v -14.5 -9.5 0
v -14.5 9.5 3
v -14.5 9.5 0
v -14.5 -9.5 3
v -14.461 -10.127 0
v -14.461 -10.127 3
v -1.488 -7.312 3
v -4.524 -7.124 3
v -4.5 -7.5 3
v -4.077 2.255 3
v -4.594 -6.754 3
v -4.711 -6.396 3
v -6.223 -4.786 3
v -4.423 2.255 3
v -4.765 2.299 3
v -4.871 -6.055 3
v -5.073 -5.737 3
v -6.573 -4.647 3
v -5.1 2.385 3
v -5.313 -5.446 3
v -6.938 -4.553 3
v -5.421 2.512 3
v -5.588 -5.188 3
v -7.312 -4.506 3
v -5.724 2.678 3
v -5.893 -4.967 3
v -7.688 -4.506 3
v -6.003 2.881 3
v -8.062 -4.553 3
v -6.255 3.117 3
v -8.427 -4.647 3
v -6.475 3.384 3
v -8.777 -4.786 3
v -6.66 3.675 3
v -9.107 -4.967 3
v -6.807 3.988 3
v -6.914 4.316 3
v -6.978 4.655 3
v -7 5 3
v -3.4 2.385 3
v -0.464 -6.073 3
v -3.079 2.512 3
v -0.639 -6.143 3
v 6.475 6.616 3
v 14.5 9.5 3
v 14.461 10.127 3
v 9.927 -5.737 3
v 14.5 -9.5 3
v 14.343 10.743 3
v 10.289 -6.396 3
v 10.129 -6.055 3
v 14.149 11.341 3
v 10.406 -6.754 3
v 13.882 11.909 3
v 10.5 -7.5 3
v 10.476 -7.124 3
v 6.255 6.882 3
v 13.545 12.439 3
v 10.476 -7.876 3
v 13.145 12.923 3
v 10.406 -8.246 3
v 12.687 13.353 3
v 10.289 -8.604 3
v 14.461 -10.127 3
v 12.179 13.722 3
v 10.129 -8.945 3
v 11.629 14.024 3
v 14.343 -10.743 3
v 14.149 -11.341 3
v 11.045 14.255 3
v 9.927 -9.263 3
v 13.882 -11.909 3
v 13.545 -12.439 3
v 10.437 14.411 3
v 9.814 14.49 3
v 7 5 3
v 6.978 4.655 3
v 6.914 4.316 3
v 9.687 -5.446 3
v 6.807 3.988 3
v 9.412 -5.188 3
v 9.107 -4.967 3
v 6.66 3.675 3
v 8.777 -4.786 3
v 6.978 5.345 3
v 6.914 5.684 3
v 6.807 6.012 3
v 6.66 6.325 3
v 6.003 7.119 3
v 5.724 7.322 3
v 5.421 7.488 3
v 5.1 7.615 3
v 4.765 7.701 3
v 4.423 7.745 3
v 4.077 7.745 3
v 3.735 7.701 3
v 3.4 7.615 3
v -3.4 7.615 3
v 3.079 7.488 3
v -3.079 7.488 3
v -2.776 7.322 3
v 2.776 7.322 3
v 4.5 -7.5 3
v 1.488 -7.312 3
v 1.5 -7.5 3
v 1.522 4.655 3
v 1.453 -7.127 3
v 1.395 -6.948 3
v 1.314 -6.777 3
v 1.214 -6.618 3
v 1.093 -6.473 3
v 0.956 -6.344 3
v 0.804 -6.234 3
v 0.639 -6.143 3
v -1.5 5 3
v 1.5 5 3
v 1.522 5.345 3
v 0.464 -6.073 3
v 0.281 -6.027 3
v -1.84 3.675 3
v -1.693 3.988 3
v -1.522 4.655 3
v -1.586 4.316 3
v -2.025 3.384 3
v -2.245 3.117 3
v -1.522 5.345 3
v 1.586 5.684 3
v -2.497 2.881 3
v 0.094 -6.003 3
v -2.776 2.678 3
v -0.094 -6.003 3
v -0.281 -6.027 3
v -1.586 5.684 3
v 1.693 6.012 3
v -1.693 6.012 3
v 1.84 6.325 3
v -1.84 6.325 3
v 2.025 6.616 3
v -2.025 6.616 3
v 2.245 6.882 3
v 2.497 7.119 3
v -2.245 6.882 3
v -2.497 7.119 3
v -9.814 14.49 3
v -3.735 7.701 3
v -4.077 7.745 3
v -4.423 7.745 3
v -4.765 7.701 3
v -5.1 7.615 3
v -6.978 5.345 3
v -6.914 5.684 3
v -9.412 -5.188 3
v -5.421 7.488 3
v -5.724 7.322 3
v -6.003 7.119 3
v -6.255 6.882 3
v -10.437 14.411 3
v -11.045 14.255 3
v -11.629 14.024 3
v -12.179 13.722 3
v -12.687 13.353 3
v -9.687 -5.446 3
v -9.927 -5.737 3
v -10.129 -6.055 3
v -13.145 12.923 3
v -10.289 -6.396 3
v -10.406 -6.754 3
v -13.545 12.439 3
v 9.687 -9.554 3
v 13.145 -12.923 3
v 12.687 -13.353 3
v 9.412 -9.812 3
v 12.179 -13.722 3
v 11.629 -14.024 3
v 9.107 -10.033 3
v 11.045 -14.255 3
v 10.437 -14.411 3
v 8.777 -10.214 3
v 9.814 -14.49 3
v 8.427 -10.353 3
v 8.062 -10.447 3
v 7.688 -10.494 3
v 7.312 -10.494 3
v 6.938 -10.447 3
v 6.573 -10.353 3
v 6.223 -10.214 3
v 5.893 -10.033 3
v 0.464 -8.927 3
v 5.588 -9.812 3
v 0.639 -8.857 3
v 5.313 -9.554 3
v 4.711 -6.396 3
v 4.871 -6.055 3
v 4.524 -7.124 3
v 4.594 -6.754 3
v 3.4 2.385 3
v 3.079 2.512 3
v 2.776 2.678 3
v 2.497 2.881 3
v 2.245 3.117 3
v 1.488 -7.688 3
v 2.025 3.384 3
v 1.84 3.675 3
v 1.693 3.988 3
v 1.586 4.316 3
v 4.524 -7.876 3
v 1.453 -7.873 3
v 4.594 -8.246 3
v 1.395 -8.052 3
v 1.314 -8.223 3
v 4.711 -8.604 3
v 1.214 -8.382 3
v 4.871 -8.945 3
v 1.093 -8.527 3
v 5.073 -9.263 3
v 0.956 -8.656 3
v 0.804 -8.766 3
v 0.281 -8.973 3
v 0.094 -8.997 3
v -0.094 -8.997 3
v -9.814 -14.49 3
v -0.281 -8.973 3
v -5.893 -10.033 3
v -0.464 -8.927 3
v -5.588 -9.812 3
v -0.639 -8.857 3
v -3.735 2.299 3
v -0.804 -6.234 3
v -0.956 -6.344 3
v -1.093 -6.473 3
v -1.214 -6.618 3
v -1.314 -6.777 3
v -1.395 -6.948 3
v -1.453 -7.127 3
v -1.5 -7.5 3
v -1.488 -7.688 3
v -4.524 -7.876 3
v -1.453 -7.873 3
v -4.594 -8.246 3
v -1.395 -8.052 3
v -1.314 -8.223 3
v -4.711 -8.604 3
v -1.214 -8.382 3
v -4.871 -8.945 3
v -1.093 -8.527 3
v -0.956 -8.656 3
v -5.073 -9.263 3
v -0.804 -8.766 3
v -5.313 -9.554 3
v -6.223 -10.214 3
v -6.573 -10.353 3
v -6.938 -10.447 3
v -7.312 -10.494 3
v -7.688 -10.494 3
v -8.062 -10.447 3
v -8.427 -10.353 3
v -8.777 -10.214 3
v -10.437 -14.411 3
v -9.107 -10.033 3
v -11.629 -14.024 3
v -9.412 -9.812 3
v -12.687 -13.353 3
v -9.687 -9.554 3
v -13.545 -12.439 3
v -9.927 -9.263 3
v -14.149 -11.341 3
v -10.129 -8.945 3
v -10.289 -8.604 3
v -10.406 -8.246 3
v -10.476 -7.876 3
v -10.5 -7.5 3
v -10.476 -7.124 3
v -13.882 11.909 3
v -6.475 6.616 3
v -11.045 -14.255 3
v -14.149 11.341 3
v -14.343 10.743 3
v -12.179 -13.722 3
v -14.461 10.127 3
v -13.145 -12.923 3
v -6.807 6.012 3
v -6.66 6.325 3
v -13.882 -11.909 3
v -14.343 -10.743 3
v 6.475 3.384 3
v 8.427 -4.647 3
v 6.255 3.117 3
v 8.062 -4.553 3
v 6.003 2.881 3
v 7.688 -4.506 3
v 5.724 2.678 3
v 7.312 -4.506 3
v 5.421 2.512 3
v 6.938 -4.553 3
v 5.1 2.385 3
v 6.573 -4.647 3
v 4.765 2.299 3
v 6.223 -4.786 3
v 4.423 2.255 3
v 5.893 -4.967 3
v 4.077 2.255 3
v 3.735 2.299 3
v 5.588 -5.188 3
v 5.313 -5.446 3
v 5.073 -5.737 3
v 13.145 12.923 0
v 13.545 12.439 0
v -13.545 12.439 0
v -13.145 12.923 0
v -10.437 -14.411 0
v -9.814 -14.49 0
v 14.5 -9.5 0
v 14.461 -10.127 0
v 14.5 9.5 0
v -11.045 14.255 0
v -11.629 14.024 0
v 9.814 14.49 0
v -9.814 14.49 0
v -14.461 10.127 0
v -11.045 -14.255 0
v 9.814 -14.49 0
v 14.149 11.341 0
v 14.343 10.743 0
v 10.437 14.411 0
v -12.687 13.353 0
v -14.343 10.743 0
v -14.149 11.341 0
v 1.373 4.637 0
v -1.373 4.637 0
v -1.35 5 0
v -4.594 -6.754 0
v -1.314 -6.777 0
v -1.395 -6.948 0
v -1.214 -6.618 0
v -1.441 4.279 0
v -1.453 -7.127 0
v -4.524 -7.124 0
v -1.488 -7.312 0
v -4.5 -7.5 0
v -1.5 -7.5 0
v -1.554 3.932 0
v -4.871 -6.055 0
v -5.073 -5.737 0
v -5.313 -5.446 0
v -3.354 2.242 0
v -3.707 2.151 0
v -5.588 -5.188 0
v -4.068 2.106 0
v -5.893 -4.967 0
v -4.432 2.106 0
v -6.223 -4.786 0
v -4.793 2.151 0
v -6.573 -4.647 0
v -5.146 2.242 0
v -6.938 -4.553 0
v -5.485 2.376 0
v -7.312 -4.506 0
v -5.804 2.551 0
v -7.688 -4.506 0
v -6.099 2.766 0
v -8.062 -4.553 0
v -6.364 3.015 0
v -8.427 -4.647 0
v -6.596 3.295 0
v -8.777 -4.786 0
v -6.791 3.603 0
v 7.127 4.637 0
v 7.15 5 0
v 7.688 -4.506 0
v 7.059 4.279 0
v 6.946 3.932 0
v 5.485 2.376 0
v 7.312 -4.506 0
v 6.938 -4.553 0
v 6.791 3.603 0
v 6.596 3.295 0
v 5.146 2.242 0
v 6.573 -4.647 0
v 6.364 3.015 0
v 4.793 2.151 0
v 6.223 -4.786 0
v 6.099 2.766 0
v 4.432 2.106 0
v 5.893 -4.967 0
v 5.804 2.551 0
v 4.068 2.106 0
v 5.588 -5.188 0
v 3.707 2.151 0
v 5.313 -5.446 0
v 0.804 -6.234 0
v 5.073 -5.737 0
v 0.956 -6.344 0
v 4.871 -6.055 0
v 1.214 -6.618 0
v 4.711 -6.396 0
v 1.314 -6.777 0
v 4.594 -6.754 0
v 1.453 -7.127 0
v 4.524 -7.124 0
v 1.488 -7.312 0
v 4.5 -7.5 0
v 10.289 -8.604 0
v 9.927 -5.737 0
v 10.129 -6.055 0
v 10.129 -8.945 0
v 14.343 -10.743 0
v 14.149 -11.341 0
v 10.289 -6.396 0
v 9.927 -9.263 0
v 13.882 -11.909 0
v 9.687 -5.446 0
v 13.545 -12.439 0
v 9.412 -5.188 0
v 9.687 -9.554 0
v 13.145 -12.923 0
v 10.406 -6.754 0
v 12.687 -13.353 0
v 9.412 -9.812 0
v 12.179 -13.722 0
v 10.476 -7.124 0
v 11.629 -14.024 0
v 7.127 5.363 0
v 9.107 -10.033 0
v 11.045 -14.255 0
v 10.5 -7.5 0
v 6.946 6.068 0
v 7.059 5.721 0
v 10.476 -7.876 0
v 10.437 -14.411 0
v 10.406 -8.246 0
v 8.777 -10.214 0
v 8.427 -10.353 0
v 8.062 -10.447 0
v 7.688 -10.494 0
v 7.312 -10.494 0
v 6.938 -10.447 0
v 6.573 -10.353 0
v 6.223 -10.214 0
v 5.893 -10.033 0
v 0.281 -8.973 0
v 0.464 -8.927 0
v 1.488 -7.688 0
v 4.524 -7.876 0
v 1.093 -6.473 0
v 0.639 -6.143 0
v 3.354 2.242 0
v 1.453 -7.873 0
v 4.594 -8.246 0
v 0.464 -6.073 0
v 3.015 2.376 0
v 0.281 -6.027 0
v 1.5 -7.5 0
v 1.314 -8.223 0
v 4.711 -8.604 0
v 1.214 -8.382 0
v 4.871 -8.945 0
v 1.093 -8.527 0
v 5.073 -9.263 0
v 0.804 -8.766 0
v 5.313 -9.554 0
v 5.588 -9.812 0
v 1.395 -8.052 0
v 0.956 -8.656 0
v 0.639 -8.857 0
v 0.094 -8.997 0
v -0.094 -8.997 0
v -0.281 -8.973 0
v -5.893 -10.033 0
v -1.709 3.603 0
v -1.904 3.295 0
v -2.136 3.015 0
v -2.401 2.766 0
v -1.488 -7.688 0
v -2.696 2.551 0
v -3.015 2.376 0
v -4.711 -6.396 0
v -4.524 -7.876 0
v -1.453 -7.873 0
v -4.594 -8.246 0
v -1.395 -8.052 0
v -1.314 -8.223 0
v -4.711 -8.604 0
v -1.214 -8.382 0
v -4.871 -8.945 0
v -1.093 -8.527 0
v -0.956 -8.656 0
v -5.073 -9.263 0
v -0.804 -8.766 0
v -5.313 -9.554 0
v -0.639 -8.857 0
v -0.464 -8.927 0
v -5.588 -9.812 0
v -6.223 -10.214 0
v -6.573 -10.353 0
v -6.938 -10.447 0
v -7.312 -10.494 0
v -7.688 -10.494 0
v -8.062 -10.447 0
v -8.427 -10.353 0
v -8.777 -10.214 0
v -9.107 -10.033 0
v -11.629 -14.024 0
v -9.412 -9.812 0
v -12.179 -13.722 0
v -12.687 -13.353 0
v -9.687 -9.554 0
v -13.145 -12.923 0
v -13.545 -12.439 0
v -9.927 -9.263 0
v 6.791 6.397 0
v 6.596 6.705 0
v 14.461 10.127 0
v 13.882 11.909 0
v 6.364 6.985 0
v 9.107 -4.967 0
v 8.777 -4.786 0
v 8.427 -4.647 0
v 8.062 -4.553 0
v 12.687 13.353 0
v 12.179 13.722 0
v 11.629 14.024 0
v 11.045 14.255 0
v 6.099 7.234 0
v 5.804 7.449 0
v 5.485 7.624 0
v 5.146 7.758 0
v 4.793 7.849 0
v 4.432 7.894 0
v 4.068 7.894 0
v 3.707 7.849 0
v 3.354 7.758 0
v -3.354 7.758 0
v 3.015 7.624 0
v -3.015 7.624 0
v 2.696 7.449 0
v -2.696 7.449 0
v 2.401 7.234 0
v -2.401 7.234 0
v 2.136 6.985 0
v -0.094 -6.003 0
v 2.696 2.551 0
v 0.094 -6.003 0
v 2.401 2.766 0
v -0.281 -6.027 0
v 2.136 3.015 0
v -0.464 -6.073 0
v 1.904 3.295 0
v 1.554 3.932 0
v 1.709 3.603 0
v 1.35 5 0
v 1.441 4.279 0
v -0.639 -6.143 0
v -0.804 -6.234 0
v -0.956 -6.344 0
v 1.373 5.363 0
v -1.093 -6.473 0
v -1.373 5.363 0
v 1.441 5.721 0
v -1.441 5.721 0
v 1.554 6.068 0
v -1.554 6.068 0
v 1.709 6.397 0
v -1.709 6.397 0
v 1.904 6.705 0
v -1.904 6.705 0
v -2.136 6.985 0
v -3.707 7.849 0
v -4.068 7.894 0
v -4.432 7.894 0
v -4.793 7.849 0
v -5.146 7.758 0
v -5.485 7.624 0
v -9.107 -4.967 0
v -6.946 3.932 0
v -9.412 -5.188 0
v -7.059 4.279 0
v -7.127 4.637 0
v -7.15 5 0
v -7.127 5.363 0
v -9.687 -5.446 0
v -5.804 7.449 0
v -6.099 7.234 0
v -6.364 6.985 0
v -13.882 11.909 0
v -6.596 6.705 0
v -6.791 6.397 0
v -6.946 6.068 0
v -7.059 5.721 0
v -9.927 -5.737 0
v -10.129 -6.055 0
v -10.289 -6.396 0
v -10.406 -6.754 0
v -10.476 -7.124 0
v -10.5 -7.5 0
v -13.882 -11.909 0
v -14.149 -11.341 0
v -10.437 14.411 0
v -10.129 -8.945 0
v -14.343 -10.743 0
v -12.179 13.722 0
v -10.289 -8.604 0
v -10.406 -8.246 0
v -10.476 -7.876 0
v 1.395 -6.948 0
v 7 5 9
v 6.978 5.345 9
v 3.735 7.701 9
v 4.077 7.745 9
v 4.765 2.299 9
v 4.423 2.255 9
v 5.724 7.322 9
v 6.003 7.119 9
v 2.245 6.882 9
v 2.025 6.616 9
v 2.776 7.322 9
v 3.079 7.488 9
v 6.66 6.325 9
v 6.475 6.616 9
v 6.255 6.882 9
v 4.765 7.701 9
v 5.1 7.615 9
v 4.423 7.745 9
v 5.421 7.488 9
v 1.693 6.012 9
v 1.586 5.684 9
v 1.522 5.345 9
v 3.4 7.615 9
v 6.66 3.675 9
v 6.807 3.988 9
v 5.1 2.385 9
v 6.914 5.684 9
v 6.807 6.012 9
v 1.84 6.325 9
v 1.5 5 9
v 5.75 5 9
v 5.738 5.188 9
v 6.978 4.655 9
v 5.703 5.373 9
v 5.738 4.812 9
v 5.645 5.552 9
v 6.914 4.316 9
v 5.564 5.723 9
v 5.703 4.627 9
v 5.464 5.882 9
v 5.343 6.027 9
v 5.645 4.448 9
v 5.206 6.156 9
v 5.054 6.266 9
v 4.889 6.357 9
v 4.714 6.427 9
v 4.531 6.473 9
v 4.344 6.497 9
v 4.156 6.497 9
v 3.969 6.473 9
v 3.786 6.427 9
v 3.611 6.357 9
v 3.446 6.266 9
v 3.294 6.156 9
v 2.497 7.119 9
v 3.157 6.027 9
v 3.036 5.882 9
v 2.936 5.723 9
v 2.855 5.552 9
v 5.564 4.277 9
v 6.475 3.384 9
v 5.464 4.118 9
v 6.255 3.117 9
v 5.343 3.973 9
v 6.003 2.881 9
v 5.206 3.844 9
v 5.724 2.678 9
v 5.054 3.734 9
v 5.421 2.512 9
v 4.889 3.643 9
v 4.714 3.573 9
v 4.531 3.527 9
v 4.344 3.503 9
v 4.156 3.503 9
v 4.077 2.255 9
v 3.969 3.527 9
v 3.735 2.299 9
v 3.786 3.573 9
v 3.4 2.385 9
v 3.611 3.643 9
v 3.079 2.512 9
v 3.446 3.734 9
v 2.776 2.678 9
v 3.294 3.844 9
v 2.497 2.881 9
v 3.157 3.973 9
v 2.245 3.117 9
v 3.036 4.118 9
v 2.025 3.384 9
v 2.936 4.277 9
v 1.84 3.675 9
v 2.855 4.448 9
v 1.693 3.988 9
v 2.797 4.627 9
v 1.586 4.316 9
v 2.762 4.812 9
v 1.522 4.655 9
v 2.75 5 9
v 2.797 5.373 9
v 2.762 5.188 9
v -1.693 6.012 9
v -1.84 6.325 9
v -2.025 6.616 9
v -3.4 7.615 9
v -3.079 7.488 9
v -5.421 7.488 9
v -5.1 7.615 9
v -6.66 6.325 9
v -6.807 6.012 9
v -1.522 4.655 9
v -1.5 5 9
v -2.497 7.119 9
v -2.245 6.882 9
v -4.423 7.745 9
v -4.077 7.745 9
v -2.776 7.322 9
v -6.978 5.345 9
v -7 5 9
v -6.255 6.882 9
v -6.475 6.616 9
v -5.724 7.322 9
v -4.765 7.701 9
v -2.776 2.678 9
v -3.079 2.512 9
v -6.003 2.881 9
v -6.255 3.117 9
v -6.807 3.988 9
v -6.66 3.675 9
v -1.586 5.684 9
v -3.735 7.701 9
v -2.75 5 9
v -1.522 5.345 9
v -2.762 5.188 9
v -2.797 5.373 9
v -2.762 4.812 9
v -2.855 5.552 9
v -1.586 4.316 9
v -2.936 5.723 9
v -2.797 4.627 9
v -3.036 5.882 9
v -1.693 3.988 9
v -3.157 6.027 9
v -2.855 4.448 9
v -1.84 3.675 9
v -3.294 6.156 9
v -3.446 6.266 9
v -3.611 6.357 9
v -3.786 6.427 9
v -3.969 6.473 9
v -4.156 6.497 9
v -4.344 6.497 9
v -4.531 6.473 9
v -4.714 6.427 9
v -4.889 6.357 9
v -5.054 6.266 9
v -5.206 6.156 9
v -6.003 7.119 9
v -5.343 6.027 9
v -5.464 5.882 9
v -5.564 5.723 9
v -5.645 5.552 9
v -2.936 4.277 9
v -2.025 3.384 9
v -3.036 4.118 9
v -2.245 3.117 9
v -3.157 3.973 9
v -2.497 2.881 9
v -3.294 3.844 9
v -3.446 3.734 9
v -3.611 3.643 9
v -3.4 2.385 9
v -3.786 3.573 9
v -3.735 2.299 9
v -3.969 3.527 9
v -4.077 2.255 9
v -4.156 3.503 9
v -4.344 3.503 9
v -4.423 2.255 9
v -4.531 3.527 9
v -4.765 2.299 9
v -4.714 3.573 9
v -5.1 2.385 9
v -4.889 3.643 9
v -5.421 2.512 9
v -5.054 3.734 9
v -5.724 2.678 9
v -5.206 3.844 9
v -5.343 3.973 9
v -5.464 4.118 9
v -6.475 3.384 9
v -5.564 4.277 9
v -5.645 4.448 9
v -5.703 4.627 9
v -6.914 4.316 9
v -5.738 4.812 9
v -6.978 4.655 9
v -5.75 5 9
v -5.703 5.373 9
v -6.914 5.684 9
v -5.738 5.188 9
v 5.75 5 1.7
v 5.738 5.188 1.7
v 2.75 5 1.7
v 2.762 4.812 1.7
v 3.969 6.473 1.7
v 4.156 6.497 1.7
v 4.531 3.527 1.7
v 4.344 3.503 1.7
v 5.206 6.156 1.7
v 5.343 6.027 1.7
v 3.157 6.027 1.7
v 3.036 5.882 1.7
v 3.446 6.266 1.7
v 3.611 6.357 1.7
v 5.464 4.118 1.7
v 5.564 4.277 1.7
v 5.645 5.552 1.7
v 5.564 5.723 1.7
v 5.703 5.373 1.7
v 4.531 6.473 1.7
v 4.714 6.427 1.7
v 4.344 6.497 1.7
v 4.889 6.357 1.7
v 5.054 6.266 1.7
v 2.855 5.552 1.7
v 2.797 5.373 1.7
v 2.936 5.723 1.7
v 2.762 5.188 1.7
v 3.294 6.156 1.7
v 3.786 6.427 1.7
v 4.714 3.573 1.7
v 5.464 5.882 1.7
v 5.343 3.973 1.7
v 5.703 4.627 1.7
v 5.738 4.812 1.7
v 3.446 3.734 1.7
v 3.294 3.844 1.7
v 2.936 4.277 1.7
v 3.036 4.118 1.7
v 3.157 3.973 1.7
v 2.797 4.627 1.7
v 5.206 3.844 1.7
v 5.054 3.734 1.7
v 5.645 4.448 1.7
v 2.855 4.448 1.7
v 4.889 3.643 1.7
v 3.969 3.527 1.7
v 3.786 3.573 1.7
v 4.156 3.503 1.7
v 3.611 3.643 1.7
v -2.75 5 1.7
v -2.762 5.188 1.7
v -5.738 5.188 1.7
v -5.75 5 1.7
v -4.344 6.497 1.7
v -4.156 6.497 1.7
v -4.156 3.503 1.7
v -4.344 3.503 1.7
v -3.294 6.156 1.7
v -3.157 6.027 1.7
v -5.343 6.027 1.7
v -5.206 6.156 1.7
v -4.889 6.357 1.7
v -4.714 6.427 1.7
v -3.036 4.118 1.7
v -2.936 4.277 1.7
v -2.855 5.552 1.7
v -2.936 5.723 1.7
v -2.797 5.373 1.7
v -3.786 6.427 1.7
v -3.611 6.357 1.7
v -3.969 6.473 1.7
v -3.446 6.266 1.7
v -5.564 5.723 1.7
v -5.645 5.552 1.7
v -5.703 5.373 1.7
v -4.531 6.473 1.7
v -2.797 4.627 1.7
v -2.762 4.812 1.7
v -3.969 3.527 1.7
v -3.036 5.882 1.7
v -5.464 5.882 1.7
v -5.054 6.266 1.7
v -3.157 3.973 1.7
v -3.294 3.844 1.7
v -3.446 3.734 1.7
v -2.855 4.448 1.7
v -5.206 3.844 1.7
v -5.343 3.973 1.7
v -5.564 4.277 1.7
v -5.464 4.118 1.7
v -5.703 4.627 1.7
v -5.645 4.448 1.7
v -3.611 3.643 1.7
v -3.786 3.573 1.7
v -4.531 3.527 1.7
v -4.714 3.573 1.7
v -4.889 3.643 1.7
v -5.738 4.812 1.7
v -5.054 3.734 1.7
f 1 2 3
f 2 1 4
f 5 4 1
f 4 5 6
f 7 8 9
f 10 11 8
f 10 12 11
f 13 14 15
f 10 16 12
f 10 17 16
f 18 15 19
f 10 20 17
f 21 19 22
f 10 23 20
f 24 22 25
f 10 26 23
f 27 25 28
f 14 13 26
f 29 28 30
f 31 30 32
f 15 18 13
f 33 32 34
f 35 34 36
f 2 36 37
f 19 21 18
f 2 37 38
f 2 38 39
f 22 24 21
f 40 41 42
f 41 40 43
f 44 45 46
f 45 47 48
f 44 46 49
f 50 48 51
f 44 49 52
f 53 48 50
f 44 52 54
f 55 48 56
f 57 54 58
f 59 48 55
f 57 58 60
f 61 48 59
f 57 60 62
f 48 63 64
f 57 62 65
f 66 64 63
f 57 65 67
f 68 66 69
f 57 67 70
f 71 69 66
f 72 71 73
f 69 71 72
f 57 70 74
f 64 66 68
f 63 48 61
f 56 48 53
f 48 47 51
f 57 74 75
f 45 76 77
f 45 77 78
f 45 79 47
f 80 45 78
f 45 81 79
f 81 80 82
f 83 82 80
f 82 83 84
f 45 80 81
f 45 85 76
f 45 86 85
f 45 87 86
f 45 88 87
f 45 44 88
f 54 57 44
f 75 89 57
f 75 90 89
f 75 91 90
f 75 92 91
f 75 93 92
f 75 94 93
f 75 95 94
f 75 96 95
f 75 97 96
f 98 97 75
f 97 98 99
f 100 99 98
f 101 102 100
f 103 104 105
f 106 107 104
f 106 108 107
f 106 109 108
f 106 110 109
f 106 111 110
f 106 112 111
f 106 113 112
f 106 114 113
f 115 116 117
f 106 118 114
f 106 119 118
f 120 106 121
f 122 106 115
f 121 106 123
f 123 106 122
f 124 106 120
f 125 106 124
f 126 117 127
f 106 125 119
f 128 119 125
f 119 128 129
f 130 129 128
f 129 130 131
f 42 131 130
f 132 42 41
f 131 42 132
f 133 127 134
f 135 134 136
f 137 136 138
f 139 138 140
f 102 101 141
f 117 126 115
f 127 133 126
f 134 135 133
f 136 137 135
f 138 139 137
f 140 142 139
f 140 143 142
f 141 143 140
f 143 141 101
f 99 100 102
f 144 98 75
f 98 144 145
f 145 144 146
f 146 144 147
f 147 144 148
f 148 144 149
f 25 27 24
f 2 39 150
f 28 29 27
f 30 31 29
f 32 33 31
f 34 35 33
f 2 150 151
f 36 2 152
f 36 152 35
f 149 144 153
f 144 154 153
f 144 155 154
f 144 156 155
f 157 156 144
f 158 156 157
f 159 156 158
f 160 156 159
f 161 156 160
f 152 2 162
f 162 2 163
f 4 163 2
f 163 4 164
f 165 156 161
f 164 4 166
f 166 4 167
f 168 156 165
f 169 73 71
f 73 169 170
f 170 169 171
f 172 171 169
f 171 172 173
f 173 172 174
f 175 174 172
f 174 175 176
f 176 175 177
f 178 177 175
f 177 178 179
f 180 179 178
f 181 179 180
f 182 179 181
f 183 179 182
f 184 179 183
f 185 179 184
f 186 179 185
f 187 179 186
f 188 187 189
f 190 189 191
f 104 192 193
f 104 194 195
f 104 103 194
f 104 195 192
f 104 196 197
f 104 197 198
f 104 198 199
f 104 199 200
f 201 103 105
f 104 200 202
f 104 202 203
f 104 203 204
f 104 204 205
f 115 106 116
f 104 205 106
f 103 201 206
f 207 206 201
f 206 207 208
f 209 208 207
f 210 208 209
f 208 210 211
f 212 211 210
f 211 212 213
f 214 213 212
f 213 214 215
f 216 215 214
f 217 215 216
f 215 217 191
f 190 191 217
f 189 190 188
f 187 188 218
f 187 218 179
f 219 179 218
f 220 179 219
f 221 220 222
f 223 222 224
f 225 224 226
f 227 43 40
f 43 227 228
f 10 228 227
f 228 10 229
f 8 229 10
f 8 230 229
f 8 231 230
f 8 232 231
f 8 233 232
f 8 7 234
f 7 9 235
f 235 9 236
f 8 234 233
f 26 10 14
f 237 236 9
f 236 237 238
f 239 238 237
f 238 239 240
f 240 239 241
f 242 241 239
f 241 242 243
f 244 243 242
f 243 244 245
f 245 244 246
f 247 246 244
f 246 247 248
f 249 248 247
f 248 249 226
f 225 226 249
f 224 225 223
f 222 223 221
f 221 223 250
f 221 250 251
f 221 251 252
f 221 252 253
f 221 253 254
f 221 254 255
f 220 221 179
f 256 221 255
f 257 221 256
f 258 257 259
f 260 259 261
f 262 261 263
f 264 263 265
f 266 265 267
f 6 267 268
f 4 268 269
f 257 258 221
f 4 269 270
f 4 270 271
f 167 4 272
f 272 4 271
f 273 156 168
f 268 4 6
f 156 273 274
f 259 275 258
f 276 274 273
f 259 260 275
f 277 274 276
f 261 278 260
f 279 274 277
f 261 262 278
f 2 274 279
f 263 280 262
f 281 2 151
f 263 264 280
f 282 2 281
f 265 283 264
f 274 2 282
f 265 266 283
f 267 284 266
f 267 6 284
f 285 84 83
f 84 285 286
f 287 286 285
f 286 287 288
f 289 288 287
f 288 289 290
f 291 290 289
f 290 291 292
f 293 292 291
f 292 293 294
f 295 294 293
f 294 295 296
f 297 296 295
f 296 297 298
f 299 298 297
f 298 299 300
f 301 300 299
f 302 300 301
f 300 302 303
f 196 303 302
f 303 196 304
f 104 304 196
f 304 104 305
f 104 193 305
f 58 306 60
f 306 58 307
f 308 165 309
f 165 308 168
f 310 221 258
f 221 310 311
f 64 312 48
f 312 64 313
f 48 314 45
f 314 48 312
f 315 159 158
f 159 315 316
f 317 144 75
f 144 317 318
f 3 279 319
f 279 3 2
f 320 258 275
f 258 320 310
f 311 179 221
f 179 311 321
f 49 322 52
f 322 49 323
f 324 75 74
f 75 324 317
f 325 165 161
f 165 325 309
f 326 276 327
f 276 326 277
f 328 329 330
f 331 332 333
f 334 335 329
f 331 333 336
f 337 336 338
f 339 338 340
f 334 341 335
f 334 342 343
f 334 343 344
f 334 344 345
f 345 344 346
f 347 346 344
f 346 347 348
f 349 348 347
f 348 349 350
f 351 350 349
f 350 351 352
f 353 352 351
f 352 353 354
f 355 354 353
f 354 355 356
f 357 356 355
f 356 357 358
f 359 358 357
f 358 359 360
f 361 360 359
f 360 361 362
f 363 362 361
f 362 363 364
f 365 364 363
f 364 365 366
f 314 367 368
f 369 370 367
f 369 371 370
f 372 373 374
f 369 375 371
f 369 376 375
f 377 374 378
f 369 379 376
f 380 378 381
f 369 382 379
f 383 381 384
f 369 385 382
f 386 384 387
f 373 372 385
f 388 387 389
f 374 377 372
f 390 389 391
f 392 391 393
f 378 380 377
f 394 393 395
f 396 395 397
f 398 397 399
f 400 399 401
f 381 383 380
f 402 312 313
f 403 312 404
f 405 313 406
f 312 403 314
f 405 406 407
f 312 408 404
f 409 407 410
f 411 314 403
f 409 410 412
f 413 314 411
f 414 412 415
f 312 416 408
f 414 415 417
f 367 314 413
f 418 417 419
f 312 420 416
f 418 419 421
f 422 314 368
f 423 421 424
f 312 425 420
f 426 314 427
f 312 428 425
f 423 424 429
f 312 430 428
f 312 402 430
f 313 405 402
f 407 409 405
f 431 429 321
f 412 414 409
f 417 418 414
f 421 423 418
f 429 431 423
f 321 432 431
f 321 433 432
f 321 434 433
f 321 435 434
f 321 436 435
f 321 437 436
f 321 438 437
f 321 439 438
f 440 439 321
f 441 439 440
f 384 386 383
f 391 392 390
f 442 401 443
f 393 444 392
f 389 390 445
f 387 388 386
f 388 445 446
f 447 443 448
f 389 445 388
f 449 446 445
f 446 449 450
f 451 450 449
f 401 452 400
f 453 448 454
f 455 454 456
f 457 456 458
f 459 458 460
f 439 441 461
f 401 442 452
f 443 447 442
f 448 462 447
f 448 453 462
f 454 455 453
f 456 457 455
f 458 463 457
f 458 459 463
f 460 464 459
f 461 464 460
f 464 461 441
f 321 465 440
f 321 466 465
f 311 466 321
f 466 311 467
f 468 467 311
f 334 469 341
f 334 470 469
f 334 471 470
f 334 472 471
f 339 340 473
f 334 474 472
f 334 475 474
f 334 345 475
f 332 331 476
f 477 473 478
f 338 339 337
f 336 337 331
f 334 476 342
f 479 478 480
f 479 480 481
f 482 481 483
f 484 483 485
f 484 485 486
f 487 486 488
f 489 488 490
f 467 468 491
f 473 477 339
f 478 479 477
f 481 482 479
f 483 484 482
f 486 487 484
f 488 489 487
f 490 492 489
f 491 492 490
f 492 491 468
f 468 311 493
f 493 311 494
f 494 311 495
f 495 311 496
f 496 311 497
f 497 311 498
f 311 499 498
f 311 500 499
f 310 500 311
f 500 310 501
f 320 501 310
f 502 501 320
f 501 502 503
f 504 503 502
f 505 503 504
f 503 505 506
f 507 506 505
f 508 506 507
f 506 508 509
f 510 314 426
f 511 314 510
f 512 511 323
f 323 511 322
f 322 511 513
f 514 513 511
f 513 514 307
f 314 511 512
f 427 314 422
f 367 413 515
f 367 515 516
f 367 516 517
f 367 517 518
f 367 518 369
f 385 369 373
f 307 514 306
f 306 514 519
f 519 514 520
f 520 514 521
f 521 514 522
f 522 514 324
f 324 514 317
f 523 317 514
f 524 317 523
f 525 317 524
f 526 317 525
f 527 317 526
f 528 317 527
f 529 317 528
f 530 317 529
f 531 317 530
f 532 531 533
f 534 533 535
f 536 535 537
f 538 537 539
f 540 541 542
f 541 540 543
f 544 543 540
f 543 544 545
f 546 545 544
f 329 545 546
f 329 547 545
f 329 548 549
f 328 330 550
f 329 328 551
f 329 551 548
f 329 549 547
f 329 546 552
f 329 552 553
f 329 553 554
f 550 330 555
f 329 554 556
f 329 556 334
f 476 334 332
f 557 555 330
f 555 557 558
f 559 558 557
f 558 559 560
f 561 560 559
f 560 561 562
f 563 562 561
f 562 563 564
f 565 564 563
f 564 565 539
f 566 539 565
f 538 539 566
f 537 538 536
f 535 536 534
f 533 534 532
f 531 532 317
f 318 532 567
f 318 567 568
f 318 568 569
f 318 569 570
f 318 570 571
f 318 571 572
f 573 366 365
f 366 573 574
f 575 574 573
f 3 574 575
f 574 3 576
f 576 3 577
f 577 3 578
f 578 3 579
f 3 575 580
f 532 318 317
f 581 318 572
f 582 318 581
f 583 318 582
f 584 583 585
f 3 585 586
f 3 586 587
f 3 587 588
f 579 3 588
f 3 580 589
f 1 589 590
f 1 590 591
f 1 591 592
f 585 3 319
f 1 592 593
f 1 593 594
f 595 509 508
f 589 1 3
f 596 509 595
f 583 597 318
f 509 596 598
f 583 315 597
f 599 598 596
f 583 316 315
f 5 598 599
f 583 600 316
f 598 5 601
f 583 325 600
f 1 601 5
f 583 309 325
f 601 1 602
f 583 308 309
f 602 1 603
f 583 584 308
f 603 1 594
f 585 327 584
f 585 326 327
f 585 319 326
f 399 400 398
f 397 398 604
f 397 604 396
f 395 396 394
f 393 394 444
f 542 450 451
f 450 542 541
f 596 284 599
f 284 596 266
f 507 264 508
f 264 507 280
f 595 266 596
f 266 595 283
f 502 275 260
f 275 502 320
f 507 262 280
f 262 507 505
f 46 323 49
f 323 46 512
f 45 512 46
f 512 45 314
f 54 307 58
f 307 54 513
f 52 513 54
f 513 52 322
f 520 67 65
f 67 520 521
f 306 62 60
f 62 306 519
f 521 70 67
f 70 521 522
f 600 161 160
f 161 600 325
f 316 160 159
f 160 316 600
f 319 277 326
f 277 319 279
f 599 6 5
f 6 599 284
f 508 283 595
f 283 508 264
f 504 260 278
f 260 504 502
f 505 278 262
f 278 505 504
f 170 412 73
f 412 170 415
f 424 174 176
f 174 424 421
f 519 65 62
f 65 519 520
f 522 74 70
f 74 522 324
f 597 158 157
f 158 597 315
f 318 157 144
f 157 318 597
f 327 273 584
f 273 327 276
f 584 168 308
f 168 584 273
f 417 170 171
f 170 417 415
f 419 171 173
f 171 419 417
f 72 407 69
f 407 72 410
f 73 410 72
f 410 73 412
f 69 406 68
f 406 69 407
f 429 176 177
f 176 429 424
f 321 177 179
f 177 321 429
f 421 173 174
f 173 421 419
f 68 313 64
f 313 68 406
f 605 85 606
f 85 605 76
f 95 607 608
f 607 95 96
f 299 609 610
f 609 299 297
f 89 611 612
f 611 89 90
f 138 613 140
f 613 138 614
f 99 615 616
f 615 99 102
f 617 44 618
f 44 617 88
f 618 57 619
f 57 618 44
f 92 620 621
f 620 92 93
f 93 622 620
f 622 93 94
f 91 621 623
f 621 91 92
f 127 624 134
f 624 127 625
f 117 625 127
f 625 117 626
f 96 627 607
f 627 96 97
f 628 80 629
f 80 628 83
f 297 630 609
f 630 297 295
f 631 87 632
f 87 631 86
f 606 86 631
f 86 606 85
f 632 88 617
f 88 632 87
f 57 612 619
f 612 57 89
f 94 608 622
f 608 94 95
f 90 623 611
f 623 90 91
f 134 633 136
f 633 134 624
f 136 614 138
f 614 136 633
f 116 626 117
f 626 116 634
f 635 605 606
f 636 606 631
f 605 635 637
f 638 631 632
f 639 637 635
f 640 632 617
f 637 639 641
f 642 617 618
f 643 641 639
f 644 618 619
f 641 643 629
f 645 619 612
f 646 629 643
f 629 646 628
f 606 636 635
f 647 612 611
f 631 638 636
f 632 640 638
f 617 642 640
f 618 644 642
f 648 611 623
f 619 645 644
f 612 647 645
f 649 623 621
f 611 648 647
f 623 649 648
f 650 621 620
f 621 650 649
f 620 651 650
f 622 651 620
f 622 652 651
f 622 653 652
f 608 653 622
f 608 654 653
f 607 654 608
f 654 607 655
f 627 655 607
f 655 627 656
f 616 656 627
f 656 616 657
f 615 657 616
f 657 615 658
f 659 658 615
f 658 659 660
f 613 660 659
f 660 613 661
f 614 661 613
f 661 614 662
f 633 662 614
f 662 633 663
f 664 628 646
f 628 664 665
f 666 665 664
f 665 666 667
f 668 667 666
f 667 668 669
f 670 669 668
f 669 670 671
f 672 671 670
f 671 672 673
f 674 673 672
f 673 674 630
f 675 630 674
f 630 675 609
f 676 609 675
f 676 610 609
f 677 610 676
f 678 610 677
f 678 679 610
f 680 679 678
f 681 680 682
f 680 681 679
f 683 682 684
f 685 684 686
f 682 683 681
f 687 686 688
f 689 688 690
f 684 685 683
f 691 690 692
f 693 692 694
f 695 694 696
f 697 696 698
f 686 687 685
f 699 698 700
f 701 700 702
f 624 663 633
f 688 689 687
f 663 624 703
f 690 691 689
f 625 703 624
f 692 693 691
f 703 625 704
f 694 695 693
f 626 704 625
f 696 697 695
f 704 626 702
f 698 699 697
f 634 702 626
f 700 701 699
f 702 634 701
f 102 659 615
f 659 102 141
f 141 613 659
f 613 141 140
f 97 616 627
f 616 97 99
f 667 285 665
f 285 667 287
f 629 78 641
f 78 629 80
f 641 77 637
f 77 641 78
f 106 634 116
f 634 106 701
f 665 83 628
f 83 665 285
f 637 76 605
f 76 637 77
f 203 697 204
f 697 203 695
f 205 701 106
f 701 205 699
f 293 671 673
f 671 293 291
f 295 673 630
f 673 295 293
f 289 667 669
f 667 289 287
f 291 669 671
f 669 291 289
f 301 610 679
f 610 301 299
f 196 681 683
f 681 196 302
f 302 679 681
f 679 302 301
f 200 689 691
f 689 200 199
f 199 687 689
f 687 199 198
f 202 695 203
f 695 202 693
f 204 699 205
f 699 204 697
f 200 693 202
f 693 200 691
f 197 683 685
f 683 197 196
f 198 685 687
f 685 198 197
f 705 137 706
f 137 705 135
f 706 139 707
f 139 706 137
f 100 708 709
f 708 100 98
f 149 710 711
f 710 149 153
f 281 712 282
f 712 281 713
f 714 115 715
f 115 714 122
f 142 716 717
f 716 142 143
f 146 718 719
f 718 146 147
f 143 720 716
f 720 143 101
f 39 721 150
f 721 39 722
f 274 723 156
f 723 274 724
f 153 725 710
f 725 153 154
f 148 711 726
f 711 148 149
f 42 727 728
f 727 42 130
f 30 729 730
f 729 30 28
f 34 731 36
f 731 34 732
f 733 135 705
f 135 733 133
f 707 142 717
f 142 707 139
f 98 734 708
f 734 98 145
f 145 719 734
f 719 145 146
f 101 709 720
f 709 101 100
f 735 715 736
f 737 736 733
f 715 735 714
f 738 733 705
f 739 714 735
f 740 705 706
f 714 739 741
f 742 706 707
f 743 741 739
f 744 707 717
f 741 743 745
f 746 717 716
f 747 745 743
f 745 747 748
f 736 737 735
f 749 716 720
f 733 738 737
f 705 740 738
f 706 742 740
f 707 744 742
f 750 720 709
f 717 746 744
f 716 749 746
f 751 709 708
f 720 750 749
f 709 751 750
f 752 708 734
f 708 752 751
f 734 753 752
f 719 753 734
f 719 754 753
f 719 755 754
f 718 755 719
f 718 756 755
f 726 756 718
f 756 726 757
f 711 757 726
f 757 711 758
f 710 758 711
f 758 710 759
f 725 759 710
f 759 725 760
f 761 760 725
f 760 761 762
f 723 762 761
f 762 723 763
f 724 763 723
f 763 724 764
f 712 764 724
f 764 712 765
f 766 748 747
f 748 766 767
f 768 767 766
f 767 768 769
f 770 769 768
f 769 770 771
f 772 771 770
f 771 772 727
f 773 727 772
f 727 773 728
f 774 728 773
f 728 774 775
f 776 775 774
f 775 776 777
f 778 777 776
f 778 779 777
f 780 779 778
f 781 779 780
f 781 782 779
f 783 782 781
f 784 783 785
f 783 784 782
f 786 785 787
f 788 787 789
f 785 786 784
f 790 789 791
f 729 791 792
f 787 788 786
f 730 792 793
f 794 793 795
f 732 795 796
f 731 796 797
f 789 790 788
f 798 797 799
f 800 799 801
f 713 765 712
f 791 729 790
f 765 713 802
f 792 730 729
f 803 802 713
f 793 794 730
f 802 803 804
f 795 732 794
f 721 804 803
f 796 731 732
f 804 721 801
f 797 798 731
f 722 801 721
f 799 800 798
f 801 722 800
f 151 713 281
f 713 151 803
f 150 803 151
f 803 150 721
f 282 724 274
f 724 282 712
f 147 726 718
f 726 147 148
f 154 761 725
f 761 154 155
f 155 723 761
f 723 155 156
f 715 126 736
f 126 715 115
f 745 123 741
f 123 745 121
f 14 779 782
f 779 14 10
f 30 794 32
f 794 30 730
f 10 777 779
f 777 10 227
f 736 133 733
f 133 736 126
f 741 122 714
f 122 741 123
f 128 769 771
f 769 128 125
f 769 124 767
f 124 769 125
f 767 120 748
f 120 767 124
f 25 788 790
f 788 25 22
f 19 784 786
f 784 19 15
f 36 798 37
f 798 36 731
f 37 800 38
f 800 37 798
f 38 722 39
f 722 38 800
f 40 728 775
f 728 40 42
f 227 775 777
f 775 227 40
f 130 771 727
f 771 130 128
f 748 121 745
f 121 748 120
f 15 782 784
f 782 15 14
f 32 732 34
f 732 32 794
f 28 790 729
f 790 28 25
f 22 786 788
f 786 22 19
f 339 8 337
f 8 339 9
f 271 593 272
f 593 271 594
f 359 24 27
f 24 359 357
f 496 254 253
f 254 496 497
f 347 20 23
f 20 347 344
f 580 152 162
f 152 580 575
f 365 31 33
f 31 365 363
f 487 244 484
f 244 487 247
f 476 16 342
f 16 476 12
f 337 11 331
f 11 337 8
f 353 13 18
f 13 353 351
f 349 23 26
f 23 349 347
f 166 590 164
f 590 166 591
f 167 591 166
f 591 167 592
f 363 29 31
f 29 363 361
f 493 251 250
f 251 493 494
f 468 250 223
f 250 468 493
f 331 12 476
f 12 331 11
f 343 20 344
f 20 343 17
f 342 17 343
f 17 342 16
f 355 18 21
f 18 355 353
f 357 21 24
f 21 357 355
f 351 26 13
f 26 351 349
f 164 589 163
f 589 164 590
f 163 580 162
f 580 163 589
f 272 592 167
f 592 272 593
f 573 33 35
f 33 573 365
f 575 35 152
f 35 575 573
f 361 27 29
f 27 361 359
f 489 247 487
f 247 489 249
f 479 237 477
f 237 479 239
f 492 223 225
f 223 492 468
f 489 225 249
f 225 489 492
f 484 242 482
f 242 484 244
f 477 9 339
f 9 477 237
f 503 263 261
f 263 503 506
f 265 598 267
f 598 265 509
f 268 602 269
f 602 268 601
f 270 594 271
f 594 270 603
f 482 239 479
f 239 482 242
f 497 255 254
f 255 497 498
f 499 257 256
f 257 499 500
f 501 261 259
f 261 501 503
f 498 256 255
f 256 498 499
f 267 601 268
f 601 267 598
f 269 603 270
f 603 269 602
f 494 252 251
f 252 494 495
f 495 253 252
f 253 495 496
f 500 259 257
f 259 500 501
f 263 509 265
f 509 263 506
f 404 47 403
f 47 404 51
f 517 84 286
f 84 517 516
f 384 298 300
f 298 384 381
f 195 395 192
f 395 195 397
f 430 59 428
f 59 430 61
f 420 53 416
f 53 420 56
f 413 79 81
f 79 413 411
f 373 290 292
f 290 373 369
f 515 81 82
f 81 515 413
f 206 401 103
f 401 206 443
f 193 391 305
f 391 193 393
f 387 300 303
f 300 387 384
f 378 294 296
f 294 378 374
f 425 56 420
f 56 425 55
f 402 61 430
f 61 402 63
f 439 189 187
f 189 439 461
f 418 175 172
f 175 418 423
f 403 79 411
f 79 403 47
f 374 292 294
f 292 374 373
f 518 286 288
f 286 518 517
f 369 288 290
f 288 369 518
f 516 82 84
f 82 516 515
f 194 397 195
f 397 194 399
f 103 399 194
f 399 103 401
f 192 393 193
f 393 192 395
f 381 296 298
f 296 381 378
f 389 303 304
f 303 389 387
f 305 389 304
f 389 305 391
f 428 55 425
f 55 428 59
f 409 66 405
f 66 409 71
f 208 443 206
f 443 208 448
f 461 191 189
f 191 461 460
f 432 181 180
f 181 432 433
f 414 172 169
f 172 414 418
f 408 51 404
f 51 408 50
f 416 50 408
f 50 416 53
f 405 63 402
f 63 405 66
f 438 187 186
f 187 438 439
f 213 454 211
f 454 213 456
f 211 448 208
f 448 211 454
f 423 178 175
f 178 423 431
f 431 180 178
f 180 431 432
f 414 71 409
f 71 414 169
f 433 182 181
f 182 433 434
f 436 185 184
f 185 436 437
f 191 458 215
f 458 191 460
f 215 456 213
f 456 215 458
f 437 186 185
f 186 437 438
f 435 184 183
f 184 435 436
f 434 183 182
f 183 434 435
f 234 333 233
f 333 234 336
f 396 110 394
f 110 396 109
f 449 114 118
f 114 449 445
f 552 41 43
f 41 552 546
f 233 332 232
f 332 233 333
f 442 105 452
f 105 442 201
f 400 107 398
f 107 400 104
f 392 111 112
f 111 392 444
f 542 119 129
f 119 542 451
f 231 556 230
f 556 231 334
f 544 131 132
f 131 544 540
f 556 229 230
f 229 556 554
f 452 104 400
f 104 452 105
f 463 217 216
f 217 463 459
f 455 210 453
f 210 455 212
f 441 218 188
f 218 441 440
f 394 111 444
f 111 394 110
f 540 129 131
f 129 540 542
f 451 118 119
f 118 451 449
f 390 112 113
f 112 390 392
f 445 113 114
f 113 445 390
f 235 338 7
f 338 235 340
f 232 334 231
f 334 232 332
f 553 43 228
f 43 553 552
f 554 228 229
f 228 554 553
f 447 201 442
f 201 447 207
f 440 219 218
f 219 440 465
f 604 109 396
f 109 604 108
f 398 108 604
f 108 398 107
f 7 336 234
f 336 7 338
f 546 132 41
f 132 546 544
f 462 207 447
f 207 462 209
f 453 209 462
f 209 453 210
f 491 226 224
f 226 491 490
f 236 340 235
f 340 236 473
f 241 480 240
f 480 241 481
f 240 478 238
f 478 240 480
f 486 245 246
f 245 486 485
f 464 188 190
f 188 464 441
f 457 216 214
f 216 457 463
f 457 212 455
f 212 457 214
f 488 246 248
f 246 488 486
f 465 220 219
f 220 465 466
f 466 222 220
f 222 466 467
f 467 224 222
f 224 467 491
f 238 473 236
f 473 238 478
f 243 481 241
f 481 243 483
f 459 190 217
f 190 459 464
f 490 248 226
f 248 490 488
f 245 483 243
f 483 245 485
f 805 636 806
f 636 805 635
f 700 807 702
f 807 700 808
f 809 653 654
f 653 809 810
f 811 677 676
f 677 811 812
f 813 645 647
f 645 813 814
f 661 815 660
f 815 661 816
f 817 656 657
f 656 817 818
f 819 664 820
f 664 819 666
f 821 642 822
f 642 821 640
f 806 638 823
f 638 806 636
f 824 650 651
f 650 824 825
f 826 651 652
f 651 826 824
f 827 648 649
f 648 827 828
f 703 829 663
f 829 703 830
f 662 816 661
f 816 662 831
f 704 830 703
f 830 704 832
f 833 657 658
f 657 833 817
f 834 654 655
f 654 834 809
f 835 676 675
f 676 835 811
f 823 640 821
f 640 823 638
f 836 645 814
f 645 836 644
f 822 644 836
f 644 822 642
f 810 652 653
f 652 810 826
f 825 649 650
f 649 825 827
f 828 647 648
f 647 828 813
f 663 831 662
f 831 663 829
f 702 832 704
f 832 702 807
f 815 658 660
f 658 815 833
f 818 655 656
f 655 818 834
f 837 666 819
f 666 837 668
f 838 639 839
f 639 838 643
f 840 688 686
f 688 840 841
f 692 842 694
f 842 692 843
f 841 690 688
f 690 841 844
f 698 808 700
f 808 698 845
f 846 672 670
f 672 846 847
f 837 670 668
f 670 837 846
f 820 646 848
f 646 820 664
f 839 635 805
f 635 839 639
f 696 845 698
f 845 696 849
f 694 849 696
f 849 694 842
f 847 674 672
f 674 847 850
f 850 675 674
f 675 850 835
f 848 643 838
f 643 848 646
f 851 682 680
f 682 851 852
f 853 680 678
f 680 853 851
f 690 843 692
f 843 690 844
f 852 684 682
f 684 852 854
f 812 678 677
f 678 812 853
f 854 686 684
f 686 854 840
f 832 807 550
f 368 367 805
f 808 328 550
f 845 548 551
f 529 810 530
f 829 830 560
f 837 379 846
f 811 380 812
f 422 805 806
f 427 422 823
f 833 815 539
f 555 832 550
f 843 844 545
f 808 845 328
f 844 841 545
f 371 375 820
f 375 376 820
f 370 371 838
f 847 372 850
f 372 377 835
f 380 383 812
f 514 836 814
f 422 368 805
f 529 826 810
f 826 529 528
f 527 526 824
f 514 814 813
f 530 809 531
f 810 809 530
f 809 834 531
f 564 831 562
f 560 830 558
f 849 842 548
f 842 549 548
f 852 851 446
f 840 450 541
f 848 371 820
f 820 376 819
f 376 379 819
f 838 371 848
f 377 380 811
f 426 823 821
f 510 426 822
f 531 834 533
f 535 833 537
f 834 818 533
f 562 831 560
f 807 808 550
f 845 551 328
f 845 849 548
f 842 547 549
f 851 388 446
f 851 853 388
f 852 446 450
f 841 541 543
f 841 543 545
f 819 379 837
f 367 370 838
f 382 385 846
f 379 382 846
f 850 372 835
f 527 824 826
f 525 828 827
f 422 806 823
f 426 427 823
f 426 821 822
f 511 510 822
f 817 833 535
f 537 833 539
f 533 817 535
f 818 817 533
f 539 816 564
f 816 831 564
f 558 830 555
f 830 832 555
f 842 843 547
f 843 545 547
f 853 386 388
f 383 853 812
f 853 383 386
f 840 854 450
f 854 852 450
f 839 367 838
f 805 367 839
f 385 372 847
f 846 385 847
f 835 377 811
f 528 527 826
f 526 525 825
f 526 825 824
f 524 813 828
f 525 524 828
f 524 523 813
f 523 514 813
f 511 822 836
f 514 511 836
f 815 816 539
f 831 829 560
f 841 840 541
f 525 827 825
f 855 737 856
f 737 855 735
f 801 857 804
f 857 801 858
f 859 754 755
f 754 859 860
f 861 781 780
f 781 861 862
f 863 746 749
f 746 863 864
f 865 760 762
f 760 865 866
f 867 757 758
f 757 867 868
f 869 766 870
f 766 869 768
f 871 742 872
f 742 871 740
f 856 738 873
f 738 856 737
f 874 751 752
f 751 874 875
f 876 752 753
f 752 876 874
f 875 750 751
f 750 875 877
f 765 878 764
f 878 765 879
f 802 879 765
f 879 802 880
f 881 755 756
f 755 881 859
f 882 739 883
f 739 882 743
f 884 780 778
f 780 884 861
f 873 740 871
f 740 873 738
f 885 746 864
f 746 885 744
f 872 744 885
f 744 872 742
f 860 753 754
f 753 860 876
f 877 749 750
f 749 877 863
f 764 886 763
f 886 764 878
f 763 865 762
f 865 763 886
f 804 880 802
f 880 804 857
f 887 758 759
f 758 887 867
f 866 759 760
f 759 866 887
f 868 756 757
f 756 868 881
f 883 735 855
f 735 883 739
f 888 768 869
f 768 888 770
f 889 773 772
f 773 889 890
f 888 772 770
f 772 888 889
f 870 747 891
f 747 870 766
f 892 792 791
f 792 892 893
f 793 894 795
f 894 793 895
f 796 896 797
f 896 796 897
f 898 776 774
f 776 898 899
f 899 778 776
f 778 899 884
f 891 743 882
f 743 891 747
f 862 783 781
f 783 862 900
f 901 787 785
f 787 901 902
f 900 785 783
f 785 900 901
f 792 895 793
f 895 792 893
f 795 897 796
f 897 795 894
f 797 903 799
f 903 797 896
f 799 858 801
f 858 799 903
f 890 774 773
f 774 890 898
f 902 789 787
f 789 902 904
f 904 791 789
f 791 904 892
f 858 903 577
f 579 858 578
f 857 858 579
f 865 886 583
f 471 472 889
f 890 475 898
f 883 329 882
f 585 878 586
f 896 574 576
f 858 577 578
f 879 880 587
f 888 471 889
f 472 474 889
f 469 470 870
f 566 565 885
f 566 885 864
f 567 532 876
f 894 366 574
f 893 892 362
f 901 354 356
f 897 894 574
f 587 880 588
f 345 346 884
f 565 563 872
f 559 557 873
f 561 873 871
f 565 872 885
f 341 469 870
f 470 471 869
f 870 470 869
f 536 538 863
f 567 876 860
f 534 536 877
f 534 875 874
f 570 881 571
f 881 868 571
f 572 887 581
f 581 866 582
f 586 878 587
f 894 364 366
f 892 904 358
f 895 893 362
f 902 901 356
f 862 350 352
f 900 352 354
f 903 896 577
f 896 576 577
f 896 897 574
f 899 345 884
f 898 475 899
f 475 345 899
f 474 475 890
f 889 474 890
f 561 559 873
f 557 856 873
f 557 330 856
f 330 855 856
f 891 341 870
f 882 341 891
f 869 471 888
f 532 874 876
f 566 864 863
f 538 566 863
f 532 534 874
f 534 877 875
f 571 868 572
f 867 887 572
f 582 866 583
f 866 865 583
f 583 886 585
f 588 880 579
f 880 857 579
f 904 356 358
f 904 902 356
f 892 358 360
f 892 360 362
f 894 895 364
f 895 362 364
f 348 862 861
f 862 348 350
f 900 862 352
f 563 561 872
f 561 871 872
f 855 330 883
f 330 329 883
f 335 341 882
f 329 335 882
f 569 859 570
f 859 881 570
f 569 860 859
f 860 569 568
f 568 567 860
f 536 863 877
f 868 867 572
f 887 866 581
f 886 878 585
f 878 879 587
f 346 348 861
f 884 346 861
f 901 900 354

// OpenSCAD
$fn = 50;


difference() {
	union() {
		translate(v = [0, 0, 0]) {
			rotate(a = [0, 0, 0]) {
				hull() {
					translate(v = [-9.5000000000, 9.5000000000, 0]) {
						rotate(a = [0, 0, 0]) {
							translate(v = [0, 0, 0]) {
								rotate(a = [0, 0, 0]) {
									cylinder(h = 3, r = 5);
								}
							}
						}
					}
					translate(v = [9.5000000000, 9.5000000000, 0]) {
						rotate(a = [0, 0, 0]) {
							translate(v = [0, 0, 0]) {
								rotate(a = [0, 0, 0]) {
									cylinder(h = 3, r = 5);
								}
							}
						}
					}
					translate(v = [-9.5000000000, -9.5000000000, 0]) {
						rotate(a = [0, 0, 0]) {
							translate(v = [0, 0, 0]) {
								rotate(a = [0, 0, 0]) {
									cylinder(h = 3, r = 5);
								}
							}
						}
					}
					translate(v = [9.5000000000, -9.5000000000, 0]) {
						rotate(a = [0, 0, 0]) {
							translate(v = [0, 0, 0]) {
								rotate(a = [0, 0, 0]) {
									cylinder(h = 3, r = 5);
								}
							}
						}
					}
				}
			}
		}
		translate(v = [4.2500000000, 5.0000000000, 0]) {
			rotate(a = [0, 0, 0]) {
				cylinder(h = 9, r = 2.7500000000);
			}
		}
		translate(v = [-4.2500000000, 5.0000000000, 0]) {
			rotate(a = [0, 0, 0]) {
				cylinder(h = 9, r = 2.7500000000);
			}
		}
	}
	union() {
		translate(v = [-7.5000000000, -7.5000000000, -125.0000000000]) {
			rotate(a = [0, 0, 0]) {
				cylinder(h = 250, r = 3.0000000000);
			}
		}
		translate(v = [7.5000000000, -7.5000000000, -125.0000000000]) {
			rotate(a = [0, 0, 0]) {
				cylinder(h = 250, r = 3.0000000000);
			}
		}
		translate(v = [-7.5000000000, -7.5000000000, -125.0000000000]) {
			rotate(a = [0, 0, 0]) {
				cylinder(h = 250, r = 1.5000000000);
			}
		}
		translate(v = [0.0000000000, -7.5000000000, -125.0000000000]) {
			rotate(a = [0, 0, 0]) {
				cylinder(h = 250, r = 1.5000000000);
			}
		}
		translate(v = [7.5000000000, -7.5000000000, -125.0000000000]) {
			rotate(a = [0, 0, 0]) {
				cylinder(h = 250, r = 1.5000000000);
			}
		}
		translate(v = [-7.5000000000, -7.5000000000, -125.0000000000]) {
			rotate(a = [0, 0, 0]) {
				cylinder(h = 250, r = 1.5000000000);
			}
		}
		translate(v = [0.0000000000, -7.5000000000, -125.0000000000]) {
			rotate(a = [0, 0, 0]) {
				cylinder(h = 250, r = 1.5000000000);
			}
		}
		translate(v = [7.5000000000, -7.5000000000, -125.0000000000]) {
			rotate(a = [0, 0, 0]) {
				cylinder(h = 250, r = 1.5000000000);
			}
		}
		translate(v = [-7.5000000000, -7.5000000000, -125.0000000000]) {
			rotate(a = [0, 0, 0]) {
				cylinder(h = 250, r = 1.5000000000);
			}
		}
		translate(v = [0.0000000000, -7.5000000000, -125.0000000000]) {
			rotate(a = [0, 0, 0]) {
				cylinder(h = 250, r = 1.5000000000);
			}
		}
		translate(v = [7.5000000000, -7.5000000000, -125.0000000000]) {
			rotate(a = [0, 0, 0]) {
				cylinder(h = 250, r = 1.5000000000);
			}
		}
		translate(v = [4.2500000000, 5.0000000000, -125.0000000000]) {
			rotate(a = [0, 0, 0]) {
				cylinder(h = 250, r = 1.5000000000);
			}
		}
		translate(v = [4.2500000000, 5.0000000000, 1.7000000000]) {
			rotate(a = [0, 180, 0]) {
				cylinder(h = 1.7000000000, r1 = 1.5000000000, r2 = 2.9000000000);
			}
		}
		translate(v = [4.2500000000, 5.0000000000, 9]) {
			rotate(a = [0, 180, 0]) {
				cylinder(h = 9, r = 1.5000000000);
			}
		}
		translate(v = [-4.2500000000, 5.0000000000, -125.0000000000]) {
			rotate(a = [0, 0, 0]) {
				cylinder(h = 250, r = 1.5000000000);
			}
		}
		translate(v = [-4.2500000000, 5.0000000000, 1.7000000000]) {
			rotate(a = [0, 180, 0]) {
				cylinder(h = 1.7000000000, r1 = 1.5000000000, r2 = 2.9000000000);
			}
		}
		translate(v = [-4.2500000000, 5.0000000000, 9]) {
			rotate(a = [0, 180, 0]) {
				cylinder(h = 9, r = 1.5000000000);
			}
		}
	}
}
